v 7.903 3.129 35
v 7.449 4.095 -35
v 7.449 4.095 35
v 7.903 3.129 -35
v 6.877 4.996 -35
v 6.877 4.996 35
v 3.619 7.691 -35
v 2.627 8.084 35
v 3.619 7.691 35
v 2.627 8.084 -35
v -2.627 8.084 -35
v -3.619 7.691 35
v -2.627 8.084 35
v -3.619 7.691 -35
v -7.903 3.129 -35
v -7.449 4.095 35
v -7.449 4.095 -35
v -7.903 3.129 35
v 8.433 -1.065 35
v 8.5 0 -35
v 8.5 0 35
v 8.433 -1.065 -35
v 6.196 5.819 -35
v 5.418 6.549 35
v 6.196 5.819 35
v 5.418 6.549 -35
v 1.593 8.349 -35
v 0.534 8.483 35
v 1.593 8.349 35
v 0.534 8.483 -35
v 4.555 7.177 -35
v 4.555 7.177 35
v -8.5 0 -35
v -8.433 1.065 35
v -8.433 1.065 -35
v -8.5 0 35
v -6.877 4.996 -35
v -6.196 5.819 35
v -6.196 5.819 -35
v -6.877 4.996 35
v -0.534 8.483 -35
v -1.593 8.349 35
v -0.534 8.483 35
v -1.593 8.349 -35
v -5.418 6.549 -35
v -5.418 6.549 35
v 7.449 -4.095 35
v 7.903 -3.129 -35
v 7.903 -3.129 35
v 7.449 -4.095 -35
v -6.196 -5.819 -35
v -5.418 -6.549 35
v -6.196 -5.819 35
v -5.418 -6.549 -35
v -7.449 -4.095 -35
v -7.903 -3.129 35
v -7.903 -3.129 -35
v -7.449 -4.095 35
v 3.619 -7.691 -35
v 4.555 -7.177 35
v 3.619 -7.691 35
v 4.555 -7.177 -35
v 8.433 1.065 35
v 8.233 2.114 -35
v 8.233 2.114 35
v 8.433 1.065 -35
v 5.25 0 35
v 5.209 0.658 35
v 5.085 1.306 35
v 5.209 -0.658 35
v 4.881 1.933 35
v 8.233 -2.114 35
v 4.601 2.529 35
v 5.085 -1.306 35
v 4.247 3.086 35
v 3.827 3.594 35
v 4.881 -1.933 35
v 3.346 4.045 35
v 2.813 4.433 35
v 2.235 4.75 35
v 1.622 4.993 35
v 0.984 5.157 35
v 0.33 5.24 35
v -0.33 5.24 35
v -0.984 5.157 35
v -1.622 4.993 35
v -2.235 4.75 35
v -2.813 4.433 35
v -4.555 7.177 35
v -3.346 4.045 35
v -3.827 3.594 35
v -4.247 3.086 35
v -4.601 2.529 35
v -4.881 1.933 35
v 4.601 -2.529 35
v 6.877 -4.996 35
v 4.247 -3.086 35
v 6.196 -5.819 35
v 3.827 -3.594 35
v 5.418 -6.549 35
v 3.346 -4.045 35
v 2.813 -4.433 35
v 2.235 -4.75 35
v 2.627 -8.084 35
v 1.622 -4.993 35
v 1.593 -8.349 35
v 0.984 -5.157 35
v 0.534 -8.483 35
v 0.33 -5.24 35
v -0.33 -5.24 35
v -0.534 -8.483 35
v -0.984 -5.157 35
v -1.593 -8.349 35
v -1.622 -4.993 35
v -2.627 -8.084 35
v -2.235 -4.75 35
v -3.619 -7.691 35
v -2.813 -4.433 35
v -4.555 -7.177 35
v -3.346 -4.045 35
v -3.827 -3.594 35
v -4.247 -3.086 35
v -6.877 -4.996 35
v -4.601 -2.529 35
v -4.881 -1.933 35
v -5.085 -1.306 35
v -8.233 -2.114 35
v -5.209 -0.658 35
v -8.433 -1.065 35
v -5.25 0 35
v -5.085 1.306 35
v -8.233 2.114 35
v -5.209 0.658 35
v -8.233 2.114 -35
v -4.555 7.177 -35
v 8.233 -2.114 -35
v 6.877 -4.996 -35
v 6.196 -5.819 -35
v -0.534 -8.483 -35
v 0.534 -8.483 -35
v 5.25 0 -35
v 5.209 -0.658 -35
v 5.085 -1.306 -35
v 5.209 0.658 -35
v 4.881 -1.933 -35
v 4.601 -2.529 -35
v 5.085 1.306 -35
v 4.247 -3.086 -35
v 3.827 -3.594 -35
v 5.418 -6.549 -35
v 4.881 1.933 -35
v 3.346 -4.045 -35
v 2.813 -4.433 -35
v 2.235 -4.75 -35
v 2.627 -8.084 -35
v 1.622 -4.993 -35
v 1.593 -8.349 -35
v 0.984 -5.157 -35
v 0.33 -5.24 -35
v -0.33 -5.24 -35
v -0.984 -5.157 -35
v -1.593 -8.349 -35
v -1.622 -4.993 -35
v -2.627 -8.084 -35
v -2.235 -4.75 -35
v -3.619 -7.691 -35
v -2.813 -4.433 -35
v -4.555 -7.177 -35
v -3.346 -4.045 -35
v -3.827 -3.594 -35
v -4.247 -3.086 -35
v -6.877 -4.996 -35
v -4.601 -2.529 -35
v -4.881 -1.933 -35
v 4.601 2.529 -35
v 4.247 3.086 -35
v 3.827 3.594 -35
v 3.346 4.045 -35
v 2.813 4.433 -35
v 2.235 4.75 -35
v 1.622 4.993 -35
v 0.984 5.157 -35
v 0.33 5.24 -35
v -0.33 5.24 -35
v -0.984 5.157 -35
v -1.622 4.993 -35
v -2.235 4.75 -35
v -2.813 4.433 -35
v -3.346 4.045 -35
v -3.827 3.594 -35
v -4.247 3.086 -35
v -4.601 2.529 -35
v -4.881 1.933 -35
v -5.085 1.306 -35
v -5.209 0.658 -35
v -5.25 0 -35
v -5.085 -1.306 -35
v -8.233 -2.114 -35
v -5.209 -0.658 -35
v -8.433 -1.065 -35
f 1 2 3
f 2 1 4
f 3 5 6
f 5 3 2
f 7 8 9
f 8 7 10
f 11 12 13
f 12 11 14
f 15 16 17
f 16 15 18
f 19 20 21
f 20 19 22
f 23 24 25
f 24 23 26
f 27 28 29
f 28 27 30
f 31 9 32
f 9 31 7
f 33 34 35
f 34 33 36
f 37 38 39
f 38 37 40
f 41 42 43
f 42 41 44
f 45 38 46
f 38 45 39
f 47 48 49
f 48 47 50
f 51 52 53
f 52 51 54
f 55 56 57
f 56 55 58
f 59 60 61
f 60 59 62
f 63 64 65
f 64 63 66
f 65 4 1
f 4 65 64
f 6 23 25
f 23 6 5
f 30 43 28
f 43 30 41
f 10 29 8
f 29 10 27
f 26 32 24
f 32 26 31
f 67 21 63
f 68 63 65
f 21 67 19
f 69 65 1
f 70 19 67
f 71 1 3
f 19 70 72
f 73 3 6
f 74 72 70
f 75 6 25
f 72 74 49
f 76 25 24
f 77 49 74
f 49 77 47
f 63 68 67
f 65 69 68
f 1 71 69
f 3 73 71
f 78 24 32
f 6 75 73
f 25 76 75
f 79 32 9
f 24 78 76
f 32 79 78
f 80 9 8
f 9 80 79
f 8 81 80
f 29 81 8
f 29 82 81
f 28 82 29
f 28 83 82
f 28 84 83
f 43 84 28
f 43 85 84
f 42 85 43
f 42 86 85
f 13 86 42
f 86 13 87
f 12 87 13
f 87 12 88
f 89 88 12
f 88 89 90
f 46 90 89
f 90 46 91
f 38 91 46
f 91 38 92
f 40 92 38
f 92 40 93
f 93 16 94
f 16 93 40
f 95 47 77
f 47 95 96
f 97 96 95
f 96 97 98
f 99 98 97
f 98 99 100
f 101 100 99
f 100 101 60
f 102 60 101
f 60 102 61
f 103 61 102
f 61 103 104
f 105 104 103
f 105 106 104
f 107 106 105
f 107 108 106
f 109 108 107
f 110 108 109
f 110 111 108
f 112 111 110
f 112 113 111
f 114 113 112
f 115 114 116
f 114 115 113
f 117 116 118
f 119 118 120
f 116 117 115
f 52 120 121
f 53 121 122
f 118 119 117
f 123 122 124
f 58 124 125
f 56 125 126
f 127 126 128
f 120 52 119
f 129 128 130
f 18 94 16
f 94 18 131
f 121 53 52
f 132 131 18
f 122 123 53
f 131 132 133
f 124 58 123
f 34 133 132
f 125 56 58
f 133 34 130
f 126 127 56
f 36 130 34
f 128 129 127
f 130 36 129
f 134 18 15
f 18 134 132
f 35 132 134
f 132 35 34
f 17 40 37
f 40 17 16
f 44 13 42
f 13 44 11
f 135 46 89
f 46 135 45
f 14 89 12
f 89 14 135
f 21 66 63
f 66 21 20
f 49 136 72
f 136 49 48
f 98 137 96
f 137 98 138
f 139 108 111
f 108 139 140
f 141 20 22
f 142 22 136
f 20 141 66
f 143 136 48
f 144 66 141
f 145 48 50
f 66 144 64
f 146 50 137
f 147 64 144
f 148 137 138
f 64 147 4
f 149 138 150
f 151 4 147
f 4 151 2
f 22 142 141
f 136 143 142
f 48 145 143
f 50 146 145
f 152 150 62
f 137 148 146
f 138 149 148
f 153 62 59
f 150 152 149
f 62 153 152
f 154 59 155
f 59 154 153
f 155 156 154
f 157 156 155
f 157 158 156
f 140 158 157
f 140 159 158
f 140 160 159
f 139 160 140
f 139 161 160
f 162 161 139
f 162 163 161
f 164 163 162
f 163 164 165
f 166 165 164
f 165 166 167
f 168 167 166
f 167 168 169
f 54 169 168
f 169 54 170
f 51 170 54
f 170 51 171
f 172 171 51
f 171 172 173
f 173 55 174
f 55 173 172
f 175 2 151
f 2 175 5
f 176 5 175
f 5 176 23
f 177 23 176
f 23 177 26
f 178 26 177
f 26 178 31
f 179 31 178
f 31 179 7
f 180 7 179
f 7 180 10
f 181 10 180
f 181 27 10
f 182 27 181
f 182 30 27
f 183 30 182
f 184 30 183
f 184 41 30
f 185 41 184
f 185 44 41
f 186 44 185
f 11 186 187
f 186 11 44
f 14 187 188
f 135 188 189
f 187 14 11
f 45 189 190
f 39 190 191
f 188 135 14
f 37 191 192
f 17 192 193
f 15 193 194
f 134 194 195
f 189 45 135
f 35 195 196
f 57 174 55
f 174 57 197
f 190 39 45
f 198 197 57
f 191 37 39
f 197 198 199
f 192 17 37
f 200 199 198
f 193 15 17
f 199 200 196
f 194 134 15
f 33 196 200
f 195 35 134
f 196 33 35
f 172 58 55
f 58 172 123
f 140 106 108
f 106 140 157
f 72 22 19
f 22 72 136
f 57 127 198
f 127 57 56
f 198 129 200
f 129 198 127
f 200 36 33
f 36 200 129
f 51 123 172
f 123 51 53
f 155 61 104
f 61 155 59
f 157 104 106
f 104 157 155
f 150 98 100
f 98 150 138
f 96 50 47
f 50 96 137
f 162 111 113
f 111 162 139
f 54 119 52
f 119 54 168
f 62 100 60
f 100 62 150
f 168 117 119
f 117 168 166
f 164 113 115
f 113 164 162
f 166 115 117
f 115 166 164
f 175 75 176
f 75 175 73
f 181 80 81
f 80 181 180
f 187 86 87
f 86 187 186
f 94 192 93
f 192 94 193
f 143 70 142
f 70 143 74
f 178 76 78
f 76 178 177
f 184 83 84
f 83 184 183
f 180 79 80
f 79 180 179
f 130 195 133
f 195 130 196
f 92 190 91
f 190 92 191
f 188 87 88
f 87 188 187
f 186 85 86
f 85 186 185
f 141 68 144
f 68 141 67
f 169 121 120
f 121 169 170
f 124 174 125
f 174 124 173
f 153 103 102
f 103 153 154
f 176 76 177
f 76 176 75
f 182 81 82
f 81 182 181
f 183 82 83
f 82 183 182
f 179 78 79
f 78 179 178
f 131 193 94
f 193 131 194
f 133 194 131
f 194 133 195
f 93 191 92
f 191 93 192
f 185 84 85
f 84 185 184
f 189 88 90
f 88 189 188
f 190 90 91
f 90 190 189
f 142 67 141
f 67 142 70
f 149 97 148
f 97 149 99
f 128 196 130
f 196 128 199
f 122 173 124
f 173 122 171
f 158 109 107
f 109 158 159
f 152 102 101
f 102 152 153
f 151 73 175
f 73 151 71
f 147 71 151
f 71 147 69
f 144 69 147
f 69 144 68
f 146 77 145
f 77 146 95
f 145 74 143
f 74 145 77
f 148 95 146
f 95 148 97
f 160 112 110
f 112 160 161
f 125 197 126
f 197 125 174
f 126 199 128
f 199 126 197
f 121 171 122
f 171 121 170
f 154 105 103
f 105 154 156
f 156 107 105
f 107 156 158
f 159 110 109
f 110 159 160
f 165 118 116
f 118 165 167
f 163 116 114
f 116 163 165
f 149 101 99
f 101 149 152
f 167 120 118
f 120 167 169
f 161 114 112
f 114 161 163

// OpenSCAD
$fn = 50;


difference() {
	union() {
		translate(v = [0, 0, -35.0000000000]) {
			cylinder(h = 70, r = 8.5000000000);
		}
	}
	union() {
		translate(v = [0, 0, -100.0000000000]) {
			cylinder(h = 200, r = 5.2500000000);
		}
	}
}
